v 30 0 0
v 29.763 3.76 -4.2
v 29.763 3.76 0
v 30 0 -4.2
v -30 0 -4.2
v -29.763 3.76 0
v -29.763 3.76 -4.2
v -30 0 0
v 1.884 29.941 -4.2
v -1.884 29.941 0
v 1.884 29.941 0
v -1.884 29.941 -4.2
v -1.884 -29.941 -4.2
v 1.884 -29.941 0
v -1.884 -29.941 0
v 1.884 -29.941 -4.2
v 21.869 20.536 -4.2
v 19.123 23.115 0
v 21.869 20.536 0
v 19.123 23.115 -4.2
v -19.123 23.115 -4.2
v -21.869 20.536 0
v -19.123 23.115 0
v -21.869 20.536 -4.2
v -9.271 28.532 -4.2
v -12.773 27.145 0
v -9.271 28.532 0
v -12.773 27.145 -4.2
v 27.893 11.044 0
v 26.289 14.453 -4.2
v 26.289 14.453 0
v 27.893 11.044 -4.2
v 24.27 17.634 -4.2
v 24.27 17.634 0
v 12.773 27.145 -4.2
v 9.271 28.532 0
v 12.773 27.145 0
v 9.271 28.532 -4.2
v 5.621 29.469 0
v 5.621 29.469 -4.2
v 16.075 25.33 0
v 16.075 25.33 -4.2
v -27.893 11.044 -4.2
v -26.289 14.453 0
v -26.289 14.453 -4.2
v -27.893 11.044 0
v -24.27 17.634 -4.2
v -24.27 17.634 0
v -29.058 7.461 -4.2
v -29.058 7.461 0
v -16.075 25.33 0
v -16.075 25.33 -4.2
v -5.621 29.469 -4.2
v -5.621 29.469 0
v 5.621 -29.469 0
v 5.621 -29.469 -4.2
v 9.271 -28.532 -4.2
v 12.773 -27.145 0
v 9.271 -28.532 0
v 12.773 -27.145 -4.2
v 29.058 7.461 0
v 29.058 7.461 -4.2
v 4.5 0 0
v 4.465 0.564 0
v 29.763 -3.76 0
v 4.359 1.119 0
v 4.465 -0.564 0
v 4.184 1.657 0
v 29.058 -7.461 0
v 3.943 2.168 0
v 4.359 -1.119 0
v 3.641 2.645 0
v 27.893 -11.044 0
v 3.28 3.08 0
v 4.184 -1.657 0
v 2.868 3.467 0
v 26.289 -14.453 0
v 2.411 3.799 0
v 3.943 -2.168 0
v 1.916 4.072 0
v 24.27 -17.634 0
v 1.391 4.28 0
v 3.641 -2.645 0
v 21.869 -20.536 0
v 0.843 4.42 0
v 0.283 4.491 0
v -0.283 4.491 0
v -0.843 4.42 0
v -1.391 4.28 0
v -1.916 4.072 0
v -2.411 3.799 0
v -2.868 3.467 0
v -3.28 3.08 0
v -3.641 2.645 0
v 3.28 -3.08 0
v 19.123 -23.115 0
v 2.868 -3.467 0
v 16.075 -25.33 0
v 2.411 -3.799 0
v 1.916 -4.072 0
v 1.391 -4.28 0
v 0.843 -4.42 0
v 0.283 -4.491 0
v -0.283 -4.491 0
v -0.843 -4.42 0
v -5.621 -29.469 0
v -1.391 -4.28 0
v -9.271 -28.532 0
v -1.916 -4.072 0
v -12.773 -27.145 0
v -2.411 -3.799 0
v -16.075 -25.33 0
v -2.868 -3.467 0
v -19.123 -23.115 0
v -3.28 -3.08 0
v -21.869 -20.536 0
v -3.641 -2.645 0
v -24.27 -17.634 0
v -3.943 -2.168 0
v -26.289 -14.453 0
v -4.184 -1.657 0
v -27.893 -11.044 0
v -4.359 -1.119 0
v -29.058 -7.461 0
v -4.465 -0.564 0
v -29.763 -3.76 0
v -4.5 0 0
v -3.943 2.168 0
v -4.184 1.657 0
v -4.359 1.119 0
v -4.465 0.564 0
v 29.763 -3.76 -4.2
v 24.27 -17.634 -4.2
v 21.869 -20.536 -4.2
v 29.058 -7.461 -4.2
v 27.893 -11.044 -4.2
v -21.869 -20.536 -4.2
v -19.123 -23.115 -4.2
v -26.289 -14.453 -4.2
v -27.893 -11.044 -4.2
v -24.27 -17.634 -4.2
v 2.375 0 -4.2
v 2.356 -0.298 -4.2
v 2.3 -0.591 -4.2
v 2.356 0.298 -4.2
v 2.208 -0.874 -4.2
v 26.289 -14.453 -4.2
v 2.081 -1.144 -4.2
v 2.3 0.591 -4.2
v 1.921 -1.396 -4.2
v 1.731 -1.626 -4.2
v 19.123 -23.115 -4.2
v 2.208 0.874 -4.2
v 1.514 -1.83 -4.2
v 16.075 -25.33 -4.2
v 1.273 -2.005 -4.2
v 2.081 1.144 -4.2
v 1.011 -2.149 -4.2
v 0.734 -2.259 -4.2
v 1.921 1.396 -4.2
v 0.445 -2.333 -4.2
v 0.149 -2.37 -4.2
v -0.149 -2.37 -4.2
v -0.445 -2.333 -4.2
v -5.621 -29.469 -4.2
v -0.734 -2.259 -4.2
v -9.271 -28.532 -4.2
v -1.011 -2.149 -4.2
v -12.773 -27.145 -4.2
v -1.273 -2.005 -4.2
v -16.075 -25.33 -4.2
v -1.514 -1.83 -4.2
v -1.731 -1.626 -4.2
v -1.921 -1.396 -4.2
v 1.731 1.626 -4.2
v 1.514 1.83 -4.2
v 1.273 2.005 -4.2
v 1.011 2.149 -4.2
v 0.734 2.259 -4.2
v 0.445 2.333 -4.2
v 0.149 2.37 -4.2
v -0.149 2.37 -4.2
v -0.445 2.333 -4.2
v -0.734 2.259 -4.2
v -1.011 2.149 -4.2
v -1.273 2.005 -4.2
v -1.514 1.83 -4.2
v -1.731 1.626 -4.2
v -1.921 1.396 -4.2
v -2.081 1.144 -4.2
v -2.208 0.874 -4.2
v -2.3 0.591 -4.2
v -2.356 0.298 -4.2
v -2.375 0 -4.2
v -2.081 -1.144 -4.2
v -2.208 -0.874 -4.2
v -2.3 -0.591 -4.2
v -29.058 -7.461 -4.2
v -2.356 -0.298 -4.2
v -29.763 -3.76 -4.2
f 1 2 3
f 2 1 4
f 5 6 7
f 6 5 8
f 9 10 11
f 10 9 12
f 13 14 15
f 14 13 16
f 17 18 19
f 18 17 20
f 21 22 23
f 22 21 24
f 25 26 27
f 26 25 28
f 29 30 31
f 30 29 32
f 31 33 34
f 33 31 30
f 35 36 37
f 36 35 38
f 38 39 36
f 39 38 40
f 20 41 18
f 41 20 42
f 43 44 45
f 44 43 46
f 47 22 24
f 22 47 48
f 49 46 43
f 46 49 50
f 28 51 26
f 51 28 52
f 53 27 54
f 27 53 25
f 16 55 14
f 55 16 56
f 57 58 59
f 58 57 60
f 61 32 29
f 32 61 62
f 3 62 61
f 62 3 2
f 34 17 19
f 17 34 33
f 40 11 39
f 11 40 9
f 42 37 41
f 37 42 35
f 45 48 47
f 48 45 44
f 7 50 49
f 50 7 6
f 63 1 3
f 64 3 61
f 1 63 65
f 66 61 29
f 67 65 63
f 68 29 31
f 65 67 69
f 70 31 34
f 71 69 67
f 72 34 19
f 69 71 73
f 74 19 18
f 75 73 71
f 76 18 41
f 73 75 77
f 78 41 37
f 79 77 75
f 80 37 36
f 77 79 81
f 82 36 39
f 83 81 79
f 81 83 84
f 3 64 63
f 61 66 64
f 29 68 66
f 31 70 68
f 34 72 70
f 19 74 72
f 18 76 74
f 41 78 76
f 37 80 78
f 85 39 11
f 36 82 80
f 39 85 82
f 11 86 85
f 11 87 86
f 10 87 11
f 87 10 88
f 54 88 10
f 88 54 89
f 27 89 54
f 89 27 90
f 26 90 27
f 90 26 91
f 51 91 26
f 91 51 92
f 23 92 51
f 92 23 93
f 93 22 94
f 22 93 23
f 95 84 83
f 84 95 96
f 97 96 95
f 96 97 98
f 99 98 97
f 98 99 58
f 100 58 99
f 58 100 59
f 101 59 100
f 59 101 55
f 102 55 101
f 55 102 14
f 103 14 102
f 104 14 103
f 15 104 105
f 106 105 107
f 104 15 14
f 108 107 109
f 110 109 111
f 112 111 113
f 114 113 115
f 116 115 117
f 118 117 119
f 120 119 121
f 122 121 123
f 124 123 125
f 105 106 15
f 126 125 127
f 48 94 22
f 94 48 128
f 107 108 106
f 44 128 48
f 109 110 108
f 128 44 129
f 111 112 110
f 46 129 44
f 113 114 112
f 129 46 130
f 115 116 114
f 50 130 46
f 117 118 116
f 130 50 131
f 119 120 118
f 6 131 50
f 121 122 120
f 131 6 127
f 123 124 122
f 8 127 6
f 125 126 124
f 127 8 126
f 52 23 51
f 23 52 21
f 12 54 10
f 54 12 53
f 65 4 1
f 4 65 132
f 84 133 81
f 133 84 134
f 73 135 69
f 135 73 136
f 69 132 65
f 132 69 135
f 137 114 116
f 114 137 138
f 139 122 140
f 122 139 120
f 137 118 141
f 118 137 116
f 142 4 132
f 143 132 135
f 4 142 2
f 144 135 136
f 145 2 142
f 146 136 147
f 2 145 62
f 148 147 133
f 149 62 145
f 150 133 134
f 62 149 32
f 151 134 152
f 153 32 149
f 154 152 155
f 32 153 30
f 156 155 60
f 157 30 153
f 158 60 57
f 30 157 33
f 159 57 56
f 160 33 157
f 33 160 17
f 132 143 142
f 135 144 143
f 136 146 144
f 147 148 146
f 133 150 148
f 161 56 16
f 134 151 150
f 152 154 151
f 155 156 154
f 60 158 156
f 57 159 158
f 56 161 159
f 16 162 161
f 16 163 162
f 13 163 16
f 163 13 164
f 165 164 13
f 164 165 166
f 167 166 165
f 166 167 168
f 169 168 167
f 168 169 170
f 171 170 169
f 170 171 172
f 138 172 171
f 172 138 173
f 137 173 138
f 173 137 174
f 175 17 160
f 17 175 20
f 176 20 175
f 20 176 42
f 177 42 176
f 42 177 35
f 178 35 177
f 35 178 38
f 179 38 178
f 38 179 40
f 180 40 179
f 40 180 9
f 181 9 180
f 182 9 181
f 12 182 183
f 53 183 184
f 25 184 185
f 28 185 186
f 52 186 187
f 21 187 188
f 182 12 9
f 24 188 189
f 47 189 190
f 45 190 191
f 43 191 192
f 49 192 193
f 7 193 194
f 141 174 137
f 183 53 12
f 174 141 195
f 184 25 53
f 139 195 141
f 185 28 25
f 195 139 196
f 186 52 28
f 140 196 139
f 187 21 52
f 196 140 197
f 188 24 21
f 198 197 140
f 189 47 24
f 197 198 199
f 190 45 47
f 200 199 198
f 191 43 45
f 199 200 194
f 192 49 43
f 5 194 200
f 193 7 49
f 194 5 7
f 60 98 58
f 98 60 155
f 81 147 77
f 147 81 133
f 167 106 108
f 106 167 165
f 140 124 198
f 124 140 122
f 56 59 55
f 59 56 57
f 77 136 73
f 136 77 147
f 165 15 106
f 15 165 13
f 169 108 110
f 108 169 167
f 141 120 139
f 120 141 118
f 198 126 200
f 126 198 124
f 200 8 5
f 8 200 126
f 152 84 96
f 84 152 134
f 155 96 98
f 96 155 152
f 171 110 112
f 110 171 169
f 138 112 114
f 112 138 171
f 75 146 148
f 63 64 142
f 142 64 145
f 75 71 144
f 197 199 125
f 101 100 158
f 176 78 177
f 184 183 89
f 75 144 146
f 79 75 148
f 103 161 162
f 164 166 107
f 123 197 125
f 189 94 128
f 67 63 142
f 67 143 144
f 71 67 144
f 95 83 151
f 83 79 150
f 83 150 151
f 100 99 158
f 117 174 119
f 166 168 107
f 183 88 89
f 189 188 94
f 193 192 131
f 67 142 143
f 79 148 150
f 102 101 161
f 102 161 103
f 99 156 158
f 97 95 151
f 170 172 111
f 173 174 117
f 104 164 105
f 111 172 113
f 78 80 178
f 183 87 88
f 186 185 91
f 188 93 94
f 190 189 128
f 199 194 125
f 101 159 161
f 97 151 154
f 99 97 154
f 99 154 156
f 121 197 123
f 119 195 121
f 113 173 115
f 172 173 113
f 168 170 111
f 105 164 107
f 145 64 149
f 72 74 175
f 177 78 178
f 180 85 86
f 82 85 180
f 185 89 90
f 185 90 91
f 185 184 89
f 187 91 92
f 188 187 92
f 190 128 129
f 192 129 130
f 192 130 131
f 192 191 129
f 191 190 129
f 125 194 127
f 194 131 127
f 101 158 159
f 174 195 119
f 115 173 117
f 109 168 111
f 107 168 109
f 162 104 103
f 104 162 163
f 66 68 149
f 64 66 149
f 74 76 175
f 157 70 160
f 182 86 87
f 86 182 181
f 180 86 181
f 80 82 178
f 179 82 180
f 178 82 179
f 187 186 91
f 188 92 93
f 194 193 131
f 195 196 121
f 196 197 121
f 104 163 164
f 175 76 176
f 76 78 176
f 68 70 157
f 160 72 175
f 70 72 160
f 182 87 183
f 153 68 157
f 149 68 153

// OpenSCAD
$fn = 50;


difference() {
	union() {
		translate(v = [0, 0, -4.2000000000]) {
			cylinder(h = 4.2000000000, r = 30.0000000000);
		}
		translate(v = [0, 0, -4.2000000000]) {
			cylinder(h = 4.2000000000, r = 2.8750000000);
		}
	}
	union() {
		translate(v = [0, 0, 0]) {
			rotate(a = [0, 0, 0]) {
				difference() {
					union() {
						#translate(v = [0, 0, -4.2000000000]) {
							cylinder(h = 4.2000000000, r = 2.2500000000);
						}
						#translate(v = [0, 0, -4.2000000000]) {
							cylinder(h = 4.2000000000, r1 = 2.3750000000, r2 = 4.5000000000);
						}
						#translate(v = [0, 0, -4.2000000000]) {
							cylinder(h = 4.2000000000, r = 2.3750000000);
						}
						#translate(v = [0, 0, -4.2000000000]) {
							cylinder(h = 4.2000000000, r = 2.2500000000);
						}
					}
					union();
				}
			}
		}
	}
}
